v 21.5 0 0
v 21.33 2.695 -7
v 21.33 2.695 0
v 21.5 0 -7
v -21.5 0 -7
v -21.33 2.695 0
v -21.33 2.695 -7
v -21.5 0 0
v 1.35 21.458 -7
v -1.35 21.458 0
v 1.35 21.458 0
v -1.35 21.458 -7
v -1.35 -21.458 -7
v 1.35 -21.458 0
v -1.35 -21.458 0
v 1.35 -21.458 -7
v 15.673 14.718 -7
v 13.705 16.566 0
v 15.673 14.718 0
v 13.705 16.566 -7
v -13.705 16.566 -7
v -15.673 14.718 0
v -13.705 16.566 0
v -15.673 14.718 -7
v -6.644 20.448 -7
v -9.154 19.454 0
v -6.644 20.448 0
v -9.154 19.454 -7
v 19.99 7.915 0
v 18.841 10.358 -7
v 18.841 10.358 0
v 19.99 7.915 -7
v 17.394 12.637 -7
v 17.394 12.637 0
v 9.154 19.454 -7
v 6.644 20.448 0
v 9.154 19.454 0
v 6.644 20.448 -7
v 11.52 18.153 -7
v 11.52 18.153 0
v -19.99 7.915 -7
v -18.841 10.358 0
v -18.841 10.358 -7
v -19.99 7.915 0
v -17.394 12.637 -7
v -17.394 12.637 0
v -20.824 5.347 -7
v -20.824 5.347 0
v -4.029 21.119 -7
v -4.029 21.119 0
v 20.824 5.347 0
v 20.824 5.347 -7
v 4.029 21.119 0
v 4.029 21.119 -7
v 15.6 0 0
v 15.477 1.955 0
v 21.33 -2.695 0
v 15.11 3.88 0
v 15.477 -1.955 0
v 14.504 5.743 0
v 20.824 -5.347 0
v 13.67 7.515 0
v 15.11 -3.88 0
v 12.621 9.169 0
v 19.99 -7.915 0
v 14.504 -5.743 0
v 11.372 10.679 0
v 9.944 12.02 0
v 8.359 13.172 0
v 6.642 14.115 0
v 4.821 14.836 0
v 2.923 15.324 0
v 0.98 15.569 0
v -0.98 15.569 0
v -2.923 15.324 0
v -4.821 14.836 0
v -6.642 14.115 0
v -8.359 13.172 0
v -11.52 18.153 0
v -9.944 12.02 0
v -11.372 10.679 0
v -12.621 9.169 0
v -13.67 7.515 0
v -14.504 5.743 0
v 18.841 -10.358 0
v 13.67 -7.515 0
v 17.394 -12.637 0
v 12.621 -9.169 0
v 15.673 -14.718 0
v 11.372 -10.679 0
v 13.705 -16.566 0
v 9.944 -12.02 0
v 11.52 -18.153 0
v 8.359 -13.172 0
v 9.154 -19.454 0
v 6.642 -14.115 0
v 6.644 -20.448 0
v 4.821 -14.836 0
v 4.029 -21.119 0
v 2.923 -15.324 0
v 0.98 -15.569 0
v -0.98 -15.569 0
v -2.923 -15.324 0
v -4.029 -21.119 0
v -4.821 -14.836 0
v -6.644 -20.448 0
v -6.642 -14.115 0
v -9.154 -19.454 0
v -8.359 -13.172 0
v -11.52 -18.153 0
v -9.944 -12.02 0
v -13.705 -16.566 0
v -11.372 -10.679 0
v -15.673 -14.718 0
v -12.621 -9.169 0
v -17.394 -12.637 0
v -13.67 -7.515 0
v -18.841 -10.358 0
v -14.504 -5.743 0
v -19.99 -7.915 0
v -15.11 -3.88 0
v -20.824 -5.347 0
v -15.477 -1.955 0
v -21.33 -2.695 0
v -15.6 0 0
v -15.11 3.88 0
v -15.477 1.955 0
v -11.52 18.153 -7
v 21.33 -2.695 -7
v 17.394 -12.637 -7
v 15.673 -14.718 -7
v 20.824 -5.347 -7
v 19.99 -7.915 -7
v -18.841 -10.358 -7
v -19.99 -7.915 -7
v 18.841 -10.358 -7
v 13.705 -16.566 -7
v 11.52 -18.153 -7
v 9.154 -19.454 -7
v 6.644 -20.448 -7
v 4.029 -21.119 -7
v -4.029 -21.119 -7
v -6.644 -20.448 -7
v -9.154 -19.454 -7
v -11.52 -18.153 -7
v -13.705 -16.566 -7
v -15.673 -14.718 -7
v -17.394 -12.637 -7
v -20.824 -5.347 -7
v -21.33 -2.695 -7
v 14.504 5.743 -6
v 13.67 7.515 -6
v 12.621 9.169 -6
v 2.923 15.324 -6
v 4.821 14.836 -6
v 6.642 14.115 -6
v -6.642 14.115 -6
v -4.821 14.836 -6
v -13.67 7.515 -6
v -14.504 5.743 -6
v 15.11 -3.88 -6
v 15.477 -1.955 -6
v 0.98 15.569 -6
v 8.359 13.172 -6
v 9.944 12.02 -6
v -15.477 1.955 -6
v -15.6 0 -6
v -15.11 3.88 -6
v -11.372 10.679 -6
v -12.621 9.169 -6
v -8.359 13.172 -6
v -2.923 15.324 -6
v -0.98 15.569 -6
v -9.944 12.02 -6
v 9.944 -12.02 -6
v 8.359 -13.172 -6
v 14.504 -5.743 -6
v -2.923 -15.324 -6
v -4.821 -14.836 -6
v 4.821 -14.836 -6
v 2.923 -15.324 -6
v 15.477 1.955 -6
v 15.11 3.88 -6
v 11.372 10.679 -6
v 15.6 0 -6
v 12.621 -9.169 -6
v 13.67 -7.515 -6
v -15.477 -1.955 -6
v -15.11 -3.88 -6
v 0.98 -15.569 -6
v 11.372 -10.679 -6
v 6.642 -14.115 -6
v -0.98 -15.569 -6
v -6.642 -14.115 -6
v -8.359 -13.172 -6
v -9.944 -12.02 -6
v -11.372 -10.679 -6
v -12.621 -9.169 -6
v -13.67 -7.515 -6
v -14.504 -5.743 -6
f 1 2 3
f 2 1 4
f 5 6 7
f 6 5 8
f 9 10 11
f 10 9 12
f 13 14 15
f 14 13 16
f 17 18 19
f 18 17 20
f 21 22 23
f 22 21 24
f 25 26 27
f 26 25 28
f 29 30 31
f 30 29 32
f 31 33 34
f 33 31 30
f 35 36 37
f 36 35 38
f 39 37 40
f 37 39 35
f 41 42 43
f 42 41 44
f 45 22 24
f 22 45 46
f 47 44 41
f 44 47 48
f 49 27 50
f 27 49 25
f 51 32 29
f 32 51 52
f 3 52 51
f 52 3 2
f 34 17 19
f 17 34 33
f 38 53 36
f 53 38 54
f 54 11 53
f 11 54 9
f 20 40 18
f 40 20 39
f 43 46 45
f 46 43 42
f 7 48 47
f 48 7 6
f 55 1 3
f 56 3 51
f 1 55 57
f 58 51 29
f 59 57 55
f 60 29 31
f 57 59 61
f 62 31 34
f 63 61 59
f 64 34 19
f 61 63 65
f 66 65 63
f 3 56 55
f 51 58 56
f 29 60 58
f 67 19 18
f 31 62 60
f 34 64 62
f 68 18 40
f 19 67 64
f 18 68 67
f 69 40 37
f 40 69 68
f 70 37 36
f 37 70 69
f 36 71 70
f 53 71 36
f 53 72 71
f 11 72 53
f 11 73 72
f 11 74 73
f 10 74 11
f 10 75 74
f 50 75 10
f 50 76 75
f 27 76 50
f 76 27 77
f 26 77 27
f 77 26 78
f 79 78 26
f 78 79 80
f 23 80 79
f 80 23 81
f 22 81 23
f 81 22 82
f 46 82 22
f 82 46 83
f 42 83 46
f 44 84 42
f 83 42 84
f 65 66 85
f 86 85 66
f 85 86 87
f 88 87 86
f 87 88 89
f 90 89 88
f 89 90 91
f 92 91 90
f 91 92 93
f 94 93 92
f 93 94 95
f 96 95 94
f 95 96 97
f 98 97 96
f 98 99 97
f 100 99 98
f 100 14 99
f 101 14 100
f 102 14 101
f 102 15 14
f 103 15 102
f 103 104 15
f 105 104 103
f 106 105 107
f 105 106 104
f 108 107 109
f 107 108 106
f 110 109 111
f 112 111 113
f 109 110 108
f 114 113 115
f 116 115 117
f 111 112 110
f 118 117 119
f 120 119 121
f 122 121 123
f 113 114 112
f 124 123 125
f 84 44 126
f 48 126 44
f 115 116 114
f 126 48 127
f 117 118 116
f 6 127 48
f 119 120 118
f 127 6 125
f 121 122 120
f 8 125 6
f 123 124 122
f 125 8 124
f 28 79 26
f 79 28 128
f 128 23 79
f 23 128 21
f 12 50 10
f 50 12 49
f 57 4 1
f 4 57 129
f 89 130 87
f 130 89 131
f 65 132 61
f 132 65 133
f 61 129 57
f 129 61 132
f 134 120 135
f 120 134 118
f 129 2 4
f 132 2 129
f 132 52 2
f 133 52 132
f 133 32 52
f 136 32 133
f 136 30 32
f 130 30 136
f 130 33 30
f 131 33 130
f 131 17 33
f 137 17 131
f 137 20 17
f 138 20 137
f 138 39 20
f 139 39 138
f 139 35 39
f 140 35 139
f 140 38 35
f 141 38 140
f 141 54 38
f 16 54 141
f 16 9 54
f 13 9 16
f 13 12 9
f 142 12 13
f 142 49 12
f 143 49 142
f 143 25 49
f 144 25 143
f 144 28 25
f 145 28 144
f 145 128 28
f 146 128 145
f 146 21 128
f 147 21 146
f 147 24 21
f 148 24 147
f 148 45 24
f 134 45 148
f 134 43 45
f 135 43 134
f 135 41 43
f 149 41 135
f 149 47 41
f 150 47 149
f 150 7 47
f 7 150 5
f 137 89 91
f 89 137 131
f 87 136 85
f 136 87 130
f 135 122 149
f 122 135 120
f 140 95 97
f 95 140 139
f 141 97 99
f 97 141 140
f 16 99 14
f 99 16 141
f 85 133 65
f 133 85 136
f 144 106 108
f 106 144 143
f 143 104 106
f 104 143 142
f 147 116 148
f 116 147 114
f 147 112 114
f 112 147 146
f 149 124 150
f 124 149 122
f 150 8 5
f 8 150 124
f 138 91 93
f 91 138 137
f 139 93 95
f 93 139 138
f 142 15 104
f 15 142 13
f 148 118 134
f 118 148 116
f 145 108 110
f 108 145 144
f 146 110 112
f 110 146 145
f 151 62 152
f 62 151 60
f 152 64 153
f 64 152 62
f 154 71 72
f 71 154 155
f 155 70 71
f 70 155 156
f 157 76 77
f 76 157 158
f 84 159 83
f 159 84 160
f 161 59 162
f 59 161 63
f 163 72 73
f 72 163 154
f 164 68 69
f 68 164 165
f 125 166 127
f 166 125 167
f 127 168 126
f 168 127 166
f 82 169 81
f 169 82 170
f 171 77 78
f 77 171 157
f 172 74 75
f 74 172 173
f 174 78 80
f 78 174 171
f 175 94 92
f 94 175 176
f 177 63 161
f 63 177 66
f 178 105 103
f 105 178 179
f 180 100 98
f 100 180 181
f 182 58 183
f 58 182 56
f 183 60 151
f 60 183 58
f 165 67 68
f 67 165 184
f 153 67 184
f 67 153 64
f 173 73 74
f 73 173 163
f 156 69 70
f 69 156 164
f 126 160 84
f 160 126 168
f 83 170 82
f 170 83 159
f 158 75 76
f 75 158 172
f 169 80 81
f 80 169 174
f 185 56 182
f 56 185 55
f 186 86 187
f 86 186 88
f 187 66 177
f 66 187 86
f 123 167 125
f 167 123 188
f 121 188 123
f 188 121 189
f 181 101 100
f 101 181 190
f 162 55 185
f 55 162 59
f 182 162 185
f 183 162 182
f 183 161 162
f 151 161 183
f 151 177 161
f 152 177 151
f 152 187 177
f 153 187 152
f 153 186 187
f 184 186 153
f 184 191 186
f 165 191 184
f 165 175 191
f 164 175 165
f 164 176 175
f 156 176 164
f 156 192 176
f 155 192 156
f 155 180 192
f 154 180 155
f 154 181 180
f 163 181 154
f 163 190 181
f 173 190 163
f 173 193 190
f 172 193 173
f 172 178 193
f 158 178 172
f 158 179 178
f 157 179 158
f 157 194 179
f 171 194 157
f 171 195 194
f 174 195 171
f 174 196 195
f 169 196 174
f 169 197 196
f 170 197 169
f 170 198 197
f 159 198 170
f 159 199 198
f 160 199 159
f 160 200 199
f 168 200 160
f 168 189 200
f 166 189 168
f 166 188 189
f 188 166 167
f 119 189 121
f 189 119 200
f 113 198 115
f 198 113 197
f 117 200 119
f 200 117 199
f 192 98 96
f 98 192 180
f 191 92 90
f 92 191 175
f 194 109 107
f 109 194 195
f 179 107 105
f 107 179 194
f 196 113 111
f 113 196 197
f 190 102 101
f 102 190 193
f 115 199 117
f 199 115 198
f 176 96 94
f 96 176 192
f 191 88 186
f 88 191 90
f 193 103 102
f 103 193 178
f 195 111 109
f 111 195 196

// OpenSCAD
$fn = 50;


difference() {
	union() {
		translate(v = [0, 0, -7.0000000000]) {
			cylinder(h = 7, r = 21.5000000000);
		}
	}
	union() {
		#translate(v = [0, 0, -6.0000000000]) {
			cylinder(h = 6, r = 15.6000000000);
		}
	}
}
